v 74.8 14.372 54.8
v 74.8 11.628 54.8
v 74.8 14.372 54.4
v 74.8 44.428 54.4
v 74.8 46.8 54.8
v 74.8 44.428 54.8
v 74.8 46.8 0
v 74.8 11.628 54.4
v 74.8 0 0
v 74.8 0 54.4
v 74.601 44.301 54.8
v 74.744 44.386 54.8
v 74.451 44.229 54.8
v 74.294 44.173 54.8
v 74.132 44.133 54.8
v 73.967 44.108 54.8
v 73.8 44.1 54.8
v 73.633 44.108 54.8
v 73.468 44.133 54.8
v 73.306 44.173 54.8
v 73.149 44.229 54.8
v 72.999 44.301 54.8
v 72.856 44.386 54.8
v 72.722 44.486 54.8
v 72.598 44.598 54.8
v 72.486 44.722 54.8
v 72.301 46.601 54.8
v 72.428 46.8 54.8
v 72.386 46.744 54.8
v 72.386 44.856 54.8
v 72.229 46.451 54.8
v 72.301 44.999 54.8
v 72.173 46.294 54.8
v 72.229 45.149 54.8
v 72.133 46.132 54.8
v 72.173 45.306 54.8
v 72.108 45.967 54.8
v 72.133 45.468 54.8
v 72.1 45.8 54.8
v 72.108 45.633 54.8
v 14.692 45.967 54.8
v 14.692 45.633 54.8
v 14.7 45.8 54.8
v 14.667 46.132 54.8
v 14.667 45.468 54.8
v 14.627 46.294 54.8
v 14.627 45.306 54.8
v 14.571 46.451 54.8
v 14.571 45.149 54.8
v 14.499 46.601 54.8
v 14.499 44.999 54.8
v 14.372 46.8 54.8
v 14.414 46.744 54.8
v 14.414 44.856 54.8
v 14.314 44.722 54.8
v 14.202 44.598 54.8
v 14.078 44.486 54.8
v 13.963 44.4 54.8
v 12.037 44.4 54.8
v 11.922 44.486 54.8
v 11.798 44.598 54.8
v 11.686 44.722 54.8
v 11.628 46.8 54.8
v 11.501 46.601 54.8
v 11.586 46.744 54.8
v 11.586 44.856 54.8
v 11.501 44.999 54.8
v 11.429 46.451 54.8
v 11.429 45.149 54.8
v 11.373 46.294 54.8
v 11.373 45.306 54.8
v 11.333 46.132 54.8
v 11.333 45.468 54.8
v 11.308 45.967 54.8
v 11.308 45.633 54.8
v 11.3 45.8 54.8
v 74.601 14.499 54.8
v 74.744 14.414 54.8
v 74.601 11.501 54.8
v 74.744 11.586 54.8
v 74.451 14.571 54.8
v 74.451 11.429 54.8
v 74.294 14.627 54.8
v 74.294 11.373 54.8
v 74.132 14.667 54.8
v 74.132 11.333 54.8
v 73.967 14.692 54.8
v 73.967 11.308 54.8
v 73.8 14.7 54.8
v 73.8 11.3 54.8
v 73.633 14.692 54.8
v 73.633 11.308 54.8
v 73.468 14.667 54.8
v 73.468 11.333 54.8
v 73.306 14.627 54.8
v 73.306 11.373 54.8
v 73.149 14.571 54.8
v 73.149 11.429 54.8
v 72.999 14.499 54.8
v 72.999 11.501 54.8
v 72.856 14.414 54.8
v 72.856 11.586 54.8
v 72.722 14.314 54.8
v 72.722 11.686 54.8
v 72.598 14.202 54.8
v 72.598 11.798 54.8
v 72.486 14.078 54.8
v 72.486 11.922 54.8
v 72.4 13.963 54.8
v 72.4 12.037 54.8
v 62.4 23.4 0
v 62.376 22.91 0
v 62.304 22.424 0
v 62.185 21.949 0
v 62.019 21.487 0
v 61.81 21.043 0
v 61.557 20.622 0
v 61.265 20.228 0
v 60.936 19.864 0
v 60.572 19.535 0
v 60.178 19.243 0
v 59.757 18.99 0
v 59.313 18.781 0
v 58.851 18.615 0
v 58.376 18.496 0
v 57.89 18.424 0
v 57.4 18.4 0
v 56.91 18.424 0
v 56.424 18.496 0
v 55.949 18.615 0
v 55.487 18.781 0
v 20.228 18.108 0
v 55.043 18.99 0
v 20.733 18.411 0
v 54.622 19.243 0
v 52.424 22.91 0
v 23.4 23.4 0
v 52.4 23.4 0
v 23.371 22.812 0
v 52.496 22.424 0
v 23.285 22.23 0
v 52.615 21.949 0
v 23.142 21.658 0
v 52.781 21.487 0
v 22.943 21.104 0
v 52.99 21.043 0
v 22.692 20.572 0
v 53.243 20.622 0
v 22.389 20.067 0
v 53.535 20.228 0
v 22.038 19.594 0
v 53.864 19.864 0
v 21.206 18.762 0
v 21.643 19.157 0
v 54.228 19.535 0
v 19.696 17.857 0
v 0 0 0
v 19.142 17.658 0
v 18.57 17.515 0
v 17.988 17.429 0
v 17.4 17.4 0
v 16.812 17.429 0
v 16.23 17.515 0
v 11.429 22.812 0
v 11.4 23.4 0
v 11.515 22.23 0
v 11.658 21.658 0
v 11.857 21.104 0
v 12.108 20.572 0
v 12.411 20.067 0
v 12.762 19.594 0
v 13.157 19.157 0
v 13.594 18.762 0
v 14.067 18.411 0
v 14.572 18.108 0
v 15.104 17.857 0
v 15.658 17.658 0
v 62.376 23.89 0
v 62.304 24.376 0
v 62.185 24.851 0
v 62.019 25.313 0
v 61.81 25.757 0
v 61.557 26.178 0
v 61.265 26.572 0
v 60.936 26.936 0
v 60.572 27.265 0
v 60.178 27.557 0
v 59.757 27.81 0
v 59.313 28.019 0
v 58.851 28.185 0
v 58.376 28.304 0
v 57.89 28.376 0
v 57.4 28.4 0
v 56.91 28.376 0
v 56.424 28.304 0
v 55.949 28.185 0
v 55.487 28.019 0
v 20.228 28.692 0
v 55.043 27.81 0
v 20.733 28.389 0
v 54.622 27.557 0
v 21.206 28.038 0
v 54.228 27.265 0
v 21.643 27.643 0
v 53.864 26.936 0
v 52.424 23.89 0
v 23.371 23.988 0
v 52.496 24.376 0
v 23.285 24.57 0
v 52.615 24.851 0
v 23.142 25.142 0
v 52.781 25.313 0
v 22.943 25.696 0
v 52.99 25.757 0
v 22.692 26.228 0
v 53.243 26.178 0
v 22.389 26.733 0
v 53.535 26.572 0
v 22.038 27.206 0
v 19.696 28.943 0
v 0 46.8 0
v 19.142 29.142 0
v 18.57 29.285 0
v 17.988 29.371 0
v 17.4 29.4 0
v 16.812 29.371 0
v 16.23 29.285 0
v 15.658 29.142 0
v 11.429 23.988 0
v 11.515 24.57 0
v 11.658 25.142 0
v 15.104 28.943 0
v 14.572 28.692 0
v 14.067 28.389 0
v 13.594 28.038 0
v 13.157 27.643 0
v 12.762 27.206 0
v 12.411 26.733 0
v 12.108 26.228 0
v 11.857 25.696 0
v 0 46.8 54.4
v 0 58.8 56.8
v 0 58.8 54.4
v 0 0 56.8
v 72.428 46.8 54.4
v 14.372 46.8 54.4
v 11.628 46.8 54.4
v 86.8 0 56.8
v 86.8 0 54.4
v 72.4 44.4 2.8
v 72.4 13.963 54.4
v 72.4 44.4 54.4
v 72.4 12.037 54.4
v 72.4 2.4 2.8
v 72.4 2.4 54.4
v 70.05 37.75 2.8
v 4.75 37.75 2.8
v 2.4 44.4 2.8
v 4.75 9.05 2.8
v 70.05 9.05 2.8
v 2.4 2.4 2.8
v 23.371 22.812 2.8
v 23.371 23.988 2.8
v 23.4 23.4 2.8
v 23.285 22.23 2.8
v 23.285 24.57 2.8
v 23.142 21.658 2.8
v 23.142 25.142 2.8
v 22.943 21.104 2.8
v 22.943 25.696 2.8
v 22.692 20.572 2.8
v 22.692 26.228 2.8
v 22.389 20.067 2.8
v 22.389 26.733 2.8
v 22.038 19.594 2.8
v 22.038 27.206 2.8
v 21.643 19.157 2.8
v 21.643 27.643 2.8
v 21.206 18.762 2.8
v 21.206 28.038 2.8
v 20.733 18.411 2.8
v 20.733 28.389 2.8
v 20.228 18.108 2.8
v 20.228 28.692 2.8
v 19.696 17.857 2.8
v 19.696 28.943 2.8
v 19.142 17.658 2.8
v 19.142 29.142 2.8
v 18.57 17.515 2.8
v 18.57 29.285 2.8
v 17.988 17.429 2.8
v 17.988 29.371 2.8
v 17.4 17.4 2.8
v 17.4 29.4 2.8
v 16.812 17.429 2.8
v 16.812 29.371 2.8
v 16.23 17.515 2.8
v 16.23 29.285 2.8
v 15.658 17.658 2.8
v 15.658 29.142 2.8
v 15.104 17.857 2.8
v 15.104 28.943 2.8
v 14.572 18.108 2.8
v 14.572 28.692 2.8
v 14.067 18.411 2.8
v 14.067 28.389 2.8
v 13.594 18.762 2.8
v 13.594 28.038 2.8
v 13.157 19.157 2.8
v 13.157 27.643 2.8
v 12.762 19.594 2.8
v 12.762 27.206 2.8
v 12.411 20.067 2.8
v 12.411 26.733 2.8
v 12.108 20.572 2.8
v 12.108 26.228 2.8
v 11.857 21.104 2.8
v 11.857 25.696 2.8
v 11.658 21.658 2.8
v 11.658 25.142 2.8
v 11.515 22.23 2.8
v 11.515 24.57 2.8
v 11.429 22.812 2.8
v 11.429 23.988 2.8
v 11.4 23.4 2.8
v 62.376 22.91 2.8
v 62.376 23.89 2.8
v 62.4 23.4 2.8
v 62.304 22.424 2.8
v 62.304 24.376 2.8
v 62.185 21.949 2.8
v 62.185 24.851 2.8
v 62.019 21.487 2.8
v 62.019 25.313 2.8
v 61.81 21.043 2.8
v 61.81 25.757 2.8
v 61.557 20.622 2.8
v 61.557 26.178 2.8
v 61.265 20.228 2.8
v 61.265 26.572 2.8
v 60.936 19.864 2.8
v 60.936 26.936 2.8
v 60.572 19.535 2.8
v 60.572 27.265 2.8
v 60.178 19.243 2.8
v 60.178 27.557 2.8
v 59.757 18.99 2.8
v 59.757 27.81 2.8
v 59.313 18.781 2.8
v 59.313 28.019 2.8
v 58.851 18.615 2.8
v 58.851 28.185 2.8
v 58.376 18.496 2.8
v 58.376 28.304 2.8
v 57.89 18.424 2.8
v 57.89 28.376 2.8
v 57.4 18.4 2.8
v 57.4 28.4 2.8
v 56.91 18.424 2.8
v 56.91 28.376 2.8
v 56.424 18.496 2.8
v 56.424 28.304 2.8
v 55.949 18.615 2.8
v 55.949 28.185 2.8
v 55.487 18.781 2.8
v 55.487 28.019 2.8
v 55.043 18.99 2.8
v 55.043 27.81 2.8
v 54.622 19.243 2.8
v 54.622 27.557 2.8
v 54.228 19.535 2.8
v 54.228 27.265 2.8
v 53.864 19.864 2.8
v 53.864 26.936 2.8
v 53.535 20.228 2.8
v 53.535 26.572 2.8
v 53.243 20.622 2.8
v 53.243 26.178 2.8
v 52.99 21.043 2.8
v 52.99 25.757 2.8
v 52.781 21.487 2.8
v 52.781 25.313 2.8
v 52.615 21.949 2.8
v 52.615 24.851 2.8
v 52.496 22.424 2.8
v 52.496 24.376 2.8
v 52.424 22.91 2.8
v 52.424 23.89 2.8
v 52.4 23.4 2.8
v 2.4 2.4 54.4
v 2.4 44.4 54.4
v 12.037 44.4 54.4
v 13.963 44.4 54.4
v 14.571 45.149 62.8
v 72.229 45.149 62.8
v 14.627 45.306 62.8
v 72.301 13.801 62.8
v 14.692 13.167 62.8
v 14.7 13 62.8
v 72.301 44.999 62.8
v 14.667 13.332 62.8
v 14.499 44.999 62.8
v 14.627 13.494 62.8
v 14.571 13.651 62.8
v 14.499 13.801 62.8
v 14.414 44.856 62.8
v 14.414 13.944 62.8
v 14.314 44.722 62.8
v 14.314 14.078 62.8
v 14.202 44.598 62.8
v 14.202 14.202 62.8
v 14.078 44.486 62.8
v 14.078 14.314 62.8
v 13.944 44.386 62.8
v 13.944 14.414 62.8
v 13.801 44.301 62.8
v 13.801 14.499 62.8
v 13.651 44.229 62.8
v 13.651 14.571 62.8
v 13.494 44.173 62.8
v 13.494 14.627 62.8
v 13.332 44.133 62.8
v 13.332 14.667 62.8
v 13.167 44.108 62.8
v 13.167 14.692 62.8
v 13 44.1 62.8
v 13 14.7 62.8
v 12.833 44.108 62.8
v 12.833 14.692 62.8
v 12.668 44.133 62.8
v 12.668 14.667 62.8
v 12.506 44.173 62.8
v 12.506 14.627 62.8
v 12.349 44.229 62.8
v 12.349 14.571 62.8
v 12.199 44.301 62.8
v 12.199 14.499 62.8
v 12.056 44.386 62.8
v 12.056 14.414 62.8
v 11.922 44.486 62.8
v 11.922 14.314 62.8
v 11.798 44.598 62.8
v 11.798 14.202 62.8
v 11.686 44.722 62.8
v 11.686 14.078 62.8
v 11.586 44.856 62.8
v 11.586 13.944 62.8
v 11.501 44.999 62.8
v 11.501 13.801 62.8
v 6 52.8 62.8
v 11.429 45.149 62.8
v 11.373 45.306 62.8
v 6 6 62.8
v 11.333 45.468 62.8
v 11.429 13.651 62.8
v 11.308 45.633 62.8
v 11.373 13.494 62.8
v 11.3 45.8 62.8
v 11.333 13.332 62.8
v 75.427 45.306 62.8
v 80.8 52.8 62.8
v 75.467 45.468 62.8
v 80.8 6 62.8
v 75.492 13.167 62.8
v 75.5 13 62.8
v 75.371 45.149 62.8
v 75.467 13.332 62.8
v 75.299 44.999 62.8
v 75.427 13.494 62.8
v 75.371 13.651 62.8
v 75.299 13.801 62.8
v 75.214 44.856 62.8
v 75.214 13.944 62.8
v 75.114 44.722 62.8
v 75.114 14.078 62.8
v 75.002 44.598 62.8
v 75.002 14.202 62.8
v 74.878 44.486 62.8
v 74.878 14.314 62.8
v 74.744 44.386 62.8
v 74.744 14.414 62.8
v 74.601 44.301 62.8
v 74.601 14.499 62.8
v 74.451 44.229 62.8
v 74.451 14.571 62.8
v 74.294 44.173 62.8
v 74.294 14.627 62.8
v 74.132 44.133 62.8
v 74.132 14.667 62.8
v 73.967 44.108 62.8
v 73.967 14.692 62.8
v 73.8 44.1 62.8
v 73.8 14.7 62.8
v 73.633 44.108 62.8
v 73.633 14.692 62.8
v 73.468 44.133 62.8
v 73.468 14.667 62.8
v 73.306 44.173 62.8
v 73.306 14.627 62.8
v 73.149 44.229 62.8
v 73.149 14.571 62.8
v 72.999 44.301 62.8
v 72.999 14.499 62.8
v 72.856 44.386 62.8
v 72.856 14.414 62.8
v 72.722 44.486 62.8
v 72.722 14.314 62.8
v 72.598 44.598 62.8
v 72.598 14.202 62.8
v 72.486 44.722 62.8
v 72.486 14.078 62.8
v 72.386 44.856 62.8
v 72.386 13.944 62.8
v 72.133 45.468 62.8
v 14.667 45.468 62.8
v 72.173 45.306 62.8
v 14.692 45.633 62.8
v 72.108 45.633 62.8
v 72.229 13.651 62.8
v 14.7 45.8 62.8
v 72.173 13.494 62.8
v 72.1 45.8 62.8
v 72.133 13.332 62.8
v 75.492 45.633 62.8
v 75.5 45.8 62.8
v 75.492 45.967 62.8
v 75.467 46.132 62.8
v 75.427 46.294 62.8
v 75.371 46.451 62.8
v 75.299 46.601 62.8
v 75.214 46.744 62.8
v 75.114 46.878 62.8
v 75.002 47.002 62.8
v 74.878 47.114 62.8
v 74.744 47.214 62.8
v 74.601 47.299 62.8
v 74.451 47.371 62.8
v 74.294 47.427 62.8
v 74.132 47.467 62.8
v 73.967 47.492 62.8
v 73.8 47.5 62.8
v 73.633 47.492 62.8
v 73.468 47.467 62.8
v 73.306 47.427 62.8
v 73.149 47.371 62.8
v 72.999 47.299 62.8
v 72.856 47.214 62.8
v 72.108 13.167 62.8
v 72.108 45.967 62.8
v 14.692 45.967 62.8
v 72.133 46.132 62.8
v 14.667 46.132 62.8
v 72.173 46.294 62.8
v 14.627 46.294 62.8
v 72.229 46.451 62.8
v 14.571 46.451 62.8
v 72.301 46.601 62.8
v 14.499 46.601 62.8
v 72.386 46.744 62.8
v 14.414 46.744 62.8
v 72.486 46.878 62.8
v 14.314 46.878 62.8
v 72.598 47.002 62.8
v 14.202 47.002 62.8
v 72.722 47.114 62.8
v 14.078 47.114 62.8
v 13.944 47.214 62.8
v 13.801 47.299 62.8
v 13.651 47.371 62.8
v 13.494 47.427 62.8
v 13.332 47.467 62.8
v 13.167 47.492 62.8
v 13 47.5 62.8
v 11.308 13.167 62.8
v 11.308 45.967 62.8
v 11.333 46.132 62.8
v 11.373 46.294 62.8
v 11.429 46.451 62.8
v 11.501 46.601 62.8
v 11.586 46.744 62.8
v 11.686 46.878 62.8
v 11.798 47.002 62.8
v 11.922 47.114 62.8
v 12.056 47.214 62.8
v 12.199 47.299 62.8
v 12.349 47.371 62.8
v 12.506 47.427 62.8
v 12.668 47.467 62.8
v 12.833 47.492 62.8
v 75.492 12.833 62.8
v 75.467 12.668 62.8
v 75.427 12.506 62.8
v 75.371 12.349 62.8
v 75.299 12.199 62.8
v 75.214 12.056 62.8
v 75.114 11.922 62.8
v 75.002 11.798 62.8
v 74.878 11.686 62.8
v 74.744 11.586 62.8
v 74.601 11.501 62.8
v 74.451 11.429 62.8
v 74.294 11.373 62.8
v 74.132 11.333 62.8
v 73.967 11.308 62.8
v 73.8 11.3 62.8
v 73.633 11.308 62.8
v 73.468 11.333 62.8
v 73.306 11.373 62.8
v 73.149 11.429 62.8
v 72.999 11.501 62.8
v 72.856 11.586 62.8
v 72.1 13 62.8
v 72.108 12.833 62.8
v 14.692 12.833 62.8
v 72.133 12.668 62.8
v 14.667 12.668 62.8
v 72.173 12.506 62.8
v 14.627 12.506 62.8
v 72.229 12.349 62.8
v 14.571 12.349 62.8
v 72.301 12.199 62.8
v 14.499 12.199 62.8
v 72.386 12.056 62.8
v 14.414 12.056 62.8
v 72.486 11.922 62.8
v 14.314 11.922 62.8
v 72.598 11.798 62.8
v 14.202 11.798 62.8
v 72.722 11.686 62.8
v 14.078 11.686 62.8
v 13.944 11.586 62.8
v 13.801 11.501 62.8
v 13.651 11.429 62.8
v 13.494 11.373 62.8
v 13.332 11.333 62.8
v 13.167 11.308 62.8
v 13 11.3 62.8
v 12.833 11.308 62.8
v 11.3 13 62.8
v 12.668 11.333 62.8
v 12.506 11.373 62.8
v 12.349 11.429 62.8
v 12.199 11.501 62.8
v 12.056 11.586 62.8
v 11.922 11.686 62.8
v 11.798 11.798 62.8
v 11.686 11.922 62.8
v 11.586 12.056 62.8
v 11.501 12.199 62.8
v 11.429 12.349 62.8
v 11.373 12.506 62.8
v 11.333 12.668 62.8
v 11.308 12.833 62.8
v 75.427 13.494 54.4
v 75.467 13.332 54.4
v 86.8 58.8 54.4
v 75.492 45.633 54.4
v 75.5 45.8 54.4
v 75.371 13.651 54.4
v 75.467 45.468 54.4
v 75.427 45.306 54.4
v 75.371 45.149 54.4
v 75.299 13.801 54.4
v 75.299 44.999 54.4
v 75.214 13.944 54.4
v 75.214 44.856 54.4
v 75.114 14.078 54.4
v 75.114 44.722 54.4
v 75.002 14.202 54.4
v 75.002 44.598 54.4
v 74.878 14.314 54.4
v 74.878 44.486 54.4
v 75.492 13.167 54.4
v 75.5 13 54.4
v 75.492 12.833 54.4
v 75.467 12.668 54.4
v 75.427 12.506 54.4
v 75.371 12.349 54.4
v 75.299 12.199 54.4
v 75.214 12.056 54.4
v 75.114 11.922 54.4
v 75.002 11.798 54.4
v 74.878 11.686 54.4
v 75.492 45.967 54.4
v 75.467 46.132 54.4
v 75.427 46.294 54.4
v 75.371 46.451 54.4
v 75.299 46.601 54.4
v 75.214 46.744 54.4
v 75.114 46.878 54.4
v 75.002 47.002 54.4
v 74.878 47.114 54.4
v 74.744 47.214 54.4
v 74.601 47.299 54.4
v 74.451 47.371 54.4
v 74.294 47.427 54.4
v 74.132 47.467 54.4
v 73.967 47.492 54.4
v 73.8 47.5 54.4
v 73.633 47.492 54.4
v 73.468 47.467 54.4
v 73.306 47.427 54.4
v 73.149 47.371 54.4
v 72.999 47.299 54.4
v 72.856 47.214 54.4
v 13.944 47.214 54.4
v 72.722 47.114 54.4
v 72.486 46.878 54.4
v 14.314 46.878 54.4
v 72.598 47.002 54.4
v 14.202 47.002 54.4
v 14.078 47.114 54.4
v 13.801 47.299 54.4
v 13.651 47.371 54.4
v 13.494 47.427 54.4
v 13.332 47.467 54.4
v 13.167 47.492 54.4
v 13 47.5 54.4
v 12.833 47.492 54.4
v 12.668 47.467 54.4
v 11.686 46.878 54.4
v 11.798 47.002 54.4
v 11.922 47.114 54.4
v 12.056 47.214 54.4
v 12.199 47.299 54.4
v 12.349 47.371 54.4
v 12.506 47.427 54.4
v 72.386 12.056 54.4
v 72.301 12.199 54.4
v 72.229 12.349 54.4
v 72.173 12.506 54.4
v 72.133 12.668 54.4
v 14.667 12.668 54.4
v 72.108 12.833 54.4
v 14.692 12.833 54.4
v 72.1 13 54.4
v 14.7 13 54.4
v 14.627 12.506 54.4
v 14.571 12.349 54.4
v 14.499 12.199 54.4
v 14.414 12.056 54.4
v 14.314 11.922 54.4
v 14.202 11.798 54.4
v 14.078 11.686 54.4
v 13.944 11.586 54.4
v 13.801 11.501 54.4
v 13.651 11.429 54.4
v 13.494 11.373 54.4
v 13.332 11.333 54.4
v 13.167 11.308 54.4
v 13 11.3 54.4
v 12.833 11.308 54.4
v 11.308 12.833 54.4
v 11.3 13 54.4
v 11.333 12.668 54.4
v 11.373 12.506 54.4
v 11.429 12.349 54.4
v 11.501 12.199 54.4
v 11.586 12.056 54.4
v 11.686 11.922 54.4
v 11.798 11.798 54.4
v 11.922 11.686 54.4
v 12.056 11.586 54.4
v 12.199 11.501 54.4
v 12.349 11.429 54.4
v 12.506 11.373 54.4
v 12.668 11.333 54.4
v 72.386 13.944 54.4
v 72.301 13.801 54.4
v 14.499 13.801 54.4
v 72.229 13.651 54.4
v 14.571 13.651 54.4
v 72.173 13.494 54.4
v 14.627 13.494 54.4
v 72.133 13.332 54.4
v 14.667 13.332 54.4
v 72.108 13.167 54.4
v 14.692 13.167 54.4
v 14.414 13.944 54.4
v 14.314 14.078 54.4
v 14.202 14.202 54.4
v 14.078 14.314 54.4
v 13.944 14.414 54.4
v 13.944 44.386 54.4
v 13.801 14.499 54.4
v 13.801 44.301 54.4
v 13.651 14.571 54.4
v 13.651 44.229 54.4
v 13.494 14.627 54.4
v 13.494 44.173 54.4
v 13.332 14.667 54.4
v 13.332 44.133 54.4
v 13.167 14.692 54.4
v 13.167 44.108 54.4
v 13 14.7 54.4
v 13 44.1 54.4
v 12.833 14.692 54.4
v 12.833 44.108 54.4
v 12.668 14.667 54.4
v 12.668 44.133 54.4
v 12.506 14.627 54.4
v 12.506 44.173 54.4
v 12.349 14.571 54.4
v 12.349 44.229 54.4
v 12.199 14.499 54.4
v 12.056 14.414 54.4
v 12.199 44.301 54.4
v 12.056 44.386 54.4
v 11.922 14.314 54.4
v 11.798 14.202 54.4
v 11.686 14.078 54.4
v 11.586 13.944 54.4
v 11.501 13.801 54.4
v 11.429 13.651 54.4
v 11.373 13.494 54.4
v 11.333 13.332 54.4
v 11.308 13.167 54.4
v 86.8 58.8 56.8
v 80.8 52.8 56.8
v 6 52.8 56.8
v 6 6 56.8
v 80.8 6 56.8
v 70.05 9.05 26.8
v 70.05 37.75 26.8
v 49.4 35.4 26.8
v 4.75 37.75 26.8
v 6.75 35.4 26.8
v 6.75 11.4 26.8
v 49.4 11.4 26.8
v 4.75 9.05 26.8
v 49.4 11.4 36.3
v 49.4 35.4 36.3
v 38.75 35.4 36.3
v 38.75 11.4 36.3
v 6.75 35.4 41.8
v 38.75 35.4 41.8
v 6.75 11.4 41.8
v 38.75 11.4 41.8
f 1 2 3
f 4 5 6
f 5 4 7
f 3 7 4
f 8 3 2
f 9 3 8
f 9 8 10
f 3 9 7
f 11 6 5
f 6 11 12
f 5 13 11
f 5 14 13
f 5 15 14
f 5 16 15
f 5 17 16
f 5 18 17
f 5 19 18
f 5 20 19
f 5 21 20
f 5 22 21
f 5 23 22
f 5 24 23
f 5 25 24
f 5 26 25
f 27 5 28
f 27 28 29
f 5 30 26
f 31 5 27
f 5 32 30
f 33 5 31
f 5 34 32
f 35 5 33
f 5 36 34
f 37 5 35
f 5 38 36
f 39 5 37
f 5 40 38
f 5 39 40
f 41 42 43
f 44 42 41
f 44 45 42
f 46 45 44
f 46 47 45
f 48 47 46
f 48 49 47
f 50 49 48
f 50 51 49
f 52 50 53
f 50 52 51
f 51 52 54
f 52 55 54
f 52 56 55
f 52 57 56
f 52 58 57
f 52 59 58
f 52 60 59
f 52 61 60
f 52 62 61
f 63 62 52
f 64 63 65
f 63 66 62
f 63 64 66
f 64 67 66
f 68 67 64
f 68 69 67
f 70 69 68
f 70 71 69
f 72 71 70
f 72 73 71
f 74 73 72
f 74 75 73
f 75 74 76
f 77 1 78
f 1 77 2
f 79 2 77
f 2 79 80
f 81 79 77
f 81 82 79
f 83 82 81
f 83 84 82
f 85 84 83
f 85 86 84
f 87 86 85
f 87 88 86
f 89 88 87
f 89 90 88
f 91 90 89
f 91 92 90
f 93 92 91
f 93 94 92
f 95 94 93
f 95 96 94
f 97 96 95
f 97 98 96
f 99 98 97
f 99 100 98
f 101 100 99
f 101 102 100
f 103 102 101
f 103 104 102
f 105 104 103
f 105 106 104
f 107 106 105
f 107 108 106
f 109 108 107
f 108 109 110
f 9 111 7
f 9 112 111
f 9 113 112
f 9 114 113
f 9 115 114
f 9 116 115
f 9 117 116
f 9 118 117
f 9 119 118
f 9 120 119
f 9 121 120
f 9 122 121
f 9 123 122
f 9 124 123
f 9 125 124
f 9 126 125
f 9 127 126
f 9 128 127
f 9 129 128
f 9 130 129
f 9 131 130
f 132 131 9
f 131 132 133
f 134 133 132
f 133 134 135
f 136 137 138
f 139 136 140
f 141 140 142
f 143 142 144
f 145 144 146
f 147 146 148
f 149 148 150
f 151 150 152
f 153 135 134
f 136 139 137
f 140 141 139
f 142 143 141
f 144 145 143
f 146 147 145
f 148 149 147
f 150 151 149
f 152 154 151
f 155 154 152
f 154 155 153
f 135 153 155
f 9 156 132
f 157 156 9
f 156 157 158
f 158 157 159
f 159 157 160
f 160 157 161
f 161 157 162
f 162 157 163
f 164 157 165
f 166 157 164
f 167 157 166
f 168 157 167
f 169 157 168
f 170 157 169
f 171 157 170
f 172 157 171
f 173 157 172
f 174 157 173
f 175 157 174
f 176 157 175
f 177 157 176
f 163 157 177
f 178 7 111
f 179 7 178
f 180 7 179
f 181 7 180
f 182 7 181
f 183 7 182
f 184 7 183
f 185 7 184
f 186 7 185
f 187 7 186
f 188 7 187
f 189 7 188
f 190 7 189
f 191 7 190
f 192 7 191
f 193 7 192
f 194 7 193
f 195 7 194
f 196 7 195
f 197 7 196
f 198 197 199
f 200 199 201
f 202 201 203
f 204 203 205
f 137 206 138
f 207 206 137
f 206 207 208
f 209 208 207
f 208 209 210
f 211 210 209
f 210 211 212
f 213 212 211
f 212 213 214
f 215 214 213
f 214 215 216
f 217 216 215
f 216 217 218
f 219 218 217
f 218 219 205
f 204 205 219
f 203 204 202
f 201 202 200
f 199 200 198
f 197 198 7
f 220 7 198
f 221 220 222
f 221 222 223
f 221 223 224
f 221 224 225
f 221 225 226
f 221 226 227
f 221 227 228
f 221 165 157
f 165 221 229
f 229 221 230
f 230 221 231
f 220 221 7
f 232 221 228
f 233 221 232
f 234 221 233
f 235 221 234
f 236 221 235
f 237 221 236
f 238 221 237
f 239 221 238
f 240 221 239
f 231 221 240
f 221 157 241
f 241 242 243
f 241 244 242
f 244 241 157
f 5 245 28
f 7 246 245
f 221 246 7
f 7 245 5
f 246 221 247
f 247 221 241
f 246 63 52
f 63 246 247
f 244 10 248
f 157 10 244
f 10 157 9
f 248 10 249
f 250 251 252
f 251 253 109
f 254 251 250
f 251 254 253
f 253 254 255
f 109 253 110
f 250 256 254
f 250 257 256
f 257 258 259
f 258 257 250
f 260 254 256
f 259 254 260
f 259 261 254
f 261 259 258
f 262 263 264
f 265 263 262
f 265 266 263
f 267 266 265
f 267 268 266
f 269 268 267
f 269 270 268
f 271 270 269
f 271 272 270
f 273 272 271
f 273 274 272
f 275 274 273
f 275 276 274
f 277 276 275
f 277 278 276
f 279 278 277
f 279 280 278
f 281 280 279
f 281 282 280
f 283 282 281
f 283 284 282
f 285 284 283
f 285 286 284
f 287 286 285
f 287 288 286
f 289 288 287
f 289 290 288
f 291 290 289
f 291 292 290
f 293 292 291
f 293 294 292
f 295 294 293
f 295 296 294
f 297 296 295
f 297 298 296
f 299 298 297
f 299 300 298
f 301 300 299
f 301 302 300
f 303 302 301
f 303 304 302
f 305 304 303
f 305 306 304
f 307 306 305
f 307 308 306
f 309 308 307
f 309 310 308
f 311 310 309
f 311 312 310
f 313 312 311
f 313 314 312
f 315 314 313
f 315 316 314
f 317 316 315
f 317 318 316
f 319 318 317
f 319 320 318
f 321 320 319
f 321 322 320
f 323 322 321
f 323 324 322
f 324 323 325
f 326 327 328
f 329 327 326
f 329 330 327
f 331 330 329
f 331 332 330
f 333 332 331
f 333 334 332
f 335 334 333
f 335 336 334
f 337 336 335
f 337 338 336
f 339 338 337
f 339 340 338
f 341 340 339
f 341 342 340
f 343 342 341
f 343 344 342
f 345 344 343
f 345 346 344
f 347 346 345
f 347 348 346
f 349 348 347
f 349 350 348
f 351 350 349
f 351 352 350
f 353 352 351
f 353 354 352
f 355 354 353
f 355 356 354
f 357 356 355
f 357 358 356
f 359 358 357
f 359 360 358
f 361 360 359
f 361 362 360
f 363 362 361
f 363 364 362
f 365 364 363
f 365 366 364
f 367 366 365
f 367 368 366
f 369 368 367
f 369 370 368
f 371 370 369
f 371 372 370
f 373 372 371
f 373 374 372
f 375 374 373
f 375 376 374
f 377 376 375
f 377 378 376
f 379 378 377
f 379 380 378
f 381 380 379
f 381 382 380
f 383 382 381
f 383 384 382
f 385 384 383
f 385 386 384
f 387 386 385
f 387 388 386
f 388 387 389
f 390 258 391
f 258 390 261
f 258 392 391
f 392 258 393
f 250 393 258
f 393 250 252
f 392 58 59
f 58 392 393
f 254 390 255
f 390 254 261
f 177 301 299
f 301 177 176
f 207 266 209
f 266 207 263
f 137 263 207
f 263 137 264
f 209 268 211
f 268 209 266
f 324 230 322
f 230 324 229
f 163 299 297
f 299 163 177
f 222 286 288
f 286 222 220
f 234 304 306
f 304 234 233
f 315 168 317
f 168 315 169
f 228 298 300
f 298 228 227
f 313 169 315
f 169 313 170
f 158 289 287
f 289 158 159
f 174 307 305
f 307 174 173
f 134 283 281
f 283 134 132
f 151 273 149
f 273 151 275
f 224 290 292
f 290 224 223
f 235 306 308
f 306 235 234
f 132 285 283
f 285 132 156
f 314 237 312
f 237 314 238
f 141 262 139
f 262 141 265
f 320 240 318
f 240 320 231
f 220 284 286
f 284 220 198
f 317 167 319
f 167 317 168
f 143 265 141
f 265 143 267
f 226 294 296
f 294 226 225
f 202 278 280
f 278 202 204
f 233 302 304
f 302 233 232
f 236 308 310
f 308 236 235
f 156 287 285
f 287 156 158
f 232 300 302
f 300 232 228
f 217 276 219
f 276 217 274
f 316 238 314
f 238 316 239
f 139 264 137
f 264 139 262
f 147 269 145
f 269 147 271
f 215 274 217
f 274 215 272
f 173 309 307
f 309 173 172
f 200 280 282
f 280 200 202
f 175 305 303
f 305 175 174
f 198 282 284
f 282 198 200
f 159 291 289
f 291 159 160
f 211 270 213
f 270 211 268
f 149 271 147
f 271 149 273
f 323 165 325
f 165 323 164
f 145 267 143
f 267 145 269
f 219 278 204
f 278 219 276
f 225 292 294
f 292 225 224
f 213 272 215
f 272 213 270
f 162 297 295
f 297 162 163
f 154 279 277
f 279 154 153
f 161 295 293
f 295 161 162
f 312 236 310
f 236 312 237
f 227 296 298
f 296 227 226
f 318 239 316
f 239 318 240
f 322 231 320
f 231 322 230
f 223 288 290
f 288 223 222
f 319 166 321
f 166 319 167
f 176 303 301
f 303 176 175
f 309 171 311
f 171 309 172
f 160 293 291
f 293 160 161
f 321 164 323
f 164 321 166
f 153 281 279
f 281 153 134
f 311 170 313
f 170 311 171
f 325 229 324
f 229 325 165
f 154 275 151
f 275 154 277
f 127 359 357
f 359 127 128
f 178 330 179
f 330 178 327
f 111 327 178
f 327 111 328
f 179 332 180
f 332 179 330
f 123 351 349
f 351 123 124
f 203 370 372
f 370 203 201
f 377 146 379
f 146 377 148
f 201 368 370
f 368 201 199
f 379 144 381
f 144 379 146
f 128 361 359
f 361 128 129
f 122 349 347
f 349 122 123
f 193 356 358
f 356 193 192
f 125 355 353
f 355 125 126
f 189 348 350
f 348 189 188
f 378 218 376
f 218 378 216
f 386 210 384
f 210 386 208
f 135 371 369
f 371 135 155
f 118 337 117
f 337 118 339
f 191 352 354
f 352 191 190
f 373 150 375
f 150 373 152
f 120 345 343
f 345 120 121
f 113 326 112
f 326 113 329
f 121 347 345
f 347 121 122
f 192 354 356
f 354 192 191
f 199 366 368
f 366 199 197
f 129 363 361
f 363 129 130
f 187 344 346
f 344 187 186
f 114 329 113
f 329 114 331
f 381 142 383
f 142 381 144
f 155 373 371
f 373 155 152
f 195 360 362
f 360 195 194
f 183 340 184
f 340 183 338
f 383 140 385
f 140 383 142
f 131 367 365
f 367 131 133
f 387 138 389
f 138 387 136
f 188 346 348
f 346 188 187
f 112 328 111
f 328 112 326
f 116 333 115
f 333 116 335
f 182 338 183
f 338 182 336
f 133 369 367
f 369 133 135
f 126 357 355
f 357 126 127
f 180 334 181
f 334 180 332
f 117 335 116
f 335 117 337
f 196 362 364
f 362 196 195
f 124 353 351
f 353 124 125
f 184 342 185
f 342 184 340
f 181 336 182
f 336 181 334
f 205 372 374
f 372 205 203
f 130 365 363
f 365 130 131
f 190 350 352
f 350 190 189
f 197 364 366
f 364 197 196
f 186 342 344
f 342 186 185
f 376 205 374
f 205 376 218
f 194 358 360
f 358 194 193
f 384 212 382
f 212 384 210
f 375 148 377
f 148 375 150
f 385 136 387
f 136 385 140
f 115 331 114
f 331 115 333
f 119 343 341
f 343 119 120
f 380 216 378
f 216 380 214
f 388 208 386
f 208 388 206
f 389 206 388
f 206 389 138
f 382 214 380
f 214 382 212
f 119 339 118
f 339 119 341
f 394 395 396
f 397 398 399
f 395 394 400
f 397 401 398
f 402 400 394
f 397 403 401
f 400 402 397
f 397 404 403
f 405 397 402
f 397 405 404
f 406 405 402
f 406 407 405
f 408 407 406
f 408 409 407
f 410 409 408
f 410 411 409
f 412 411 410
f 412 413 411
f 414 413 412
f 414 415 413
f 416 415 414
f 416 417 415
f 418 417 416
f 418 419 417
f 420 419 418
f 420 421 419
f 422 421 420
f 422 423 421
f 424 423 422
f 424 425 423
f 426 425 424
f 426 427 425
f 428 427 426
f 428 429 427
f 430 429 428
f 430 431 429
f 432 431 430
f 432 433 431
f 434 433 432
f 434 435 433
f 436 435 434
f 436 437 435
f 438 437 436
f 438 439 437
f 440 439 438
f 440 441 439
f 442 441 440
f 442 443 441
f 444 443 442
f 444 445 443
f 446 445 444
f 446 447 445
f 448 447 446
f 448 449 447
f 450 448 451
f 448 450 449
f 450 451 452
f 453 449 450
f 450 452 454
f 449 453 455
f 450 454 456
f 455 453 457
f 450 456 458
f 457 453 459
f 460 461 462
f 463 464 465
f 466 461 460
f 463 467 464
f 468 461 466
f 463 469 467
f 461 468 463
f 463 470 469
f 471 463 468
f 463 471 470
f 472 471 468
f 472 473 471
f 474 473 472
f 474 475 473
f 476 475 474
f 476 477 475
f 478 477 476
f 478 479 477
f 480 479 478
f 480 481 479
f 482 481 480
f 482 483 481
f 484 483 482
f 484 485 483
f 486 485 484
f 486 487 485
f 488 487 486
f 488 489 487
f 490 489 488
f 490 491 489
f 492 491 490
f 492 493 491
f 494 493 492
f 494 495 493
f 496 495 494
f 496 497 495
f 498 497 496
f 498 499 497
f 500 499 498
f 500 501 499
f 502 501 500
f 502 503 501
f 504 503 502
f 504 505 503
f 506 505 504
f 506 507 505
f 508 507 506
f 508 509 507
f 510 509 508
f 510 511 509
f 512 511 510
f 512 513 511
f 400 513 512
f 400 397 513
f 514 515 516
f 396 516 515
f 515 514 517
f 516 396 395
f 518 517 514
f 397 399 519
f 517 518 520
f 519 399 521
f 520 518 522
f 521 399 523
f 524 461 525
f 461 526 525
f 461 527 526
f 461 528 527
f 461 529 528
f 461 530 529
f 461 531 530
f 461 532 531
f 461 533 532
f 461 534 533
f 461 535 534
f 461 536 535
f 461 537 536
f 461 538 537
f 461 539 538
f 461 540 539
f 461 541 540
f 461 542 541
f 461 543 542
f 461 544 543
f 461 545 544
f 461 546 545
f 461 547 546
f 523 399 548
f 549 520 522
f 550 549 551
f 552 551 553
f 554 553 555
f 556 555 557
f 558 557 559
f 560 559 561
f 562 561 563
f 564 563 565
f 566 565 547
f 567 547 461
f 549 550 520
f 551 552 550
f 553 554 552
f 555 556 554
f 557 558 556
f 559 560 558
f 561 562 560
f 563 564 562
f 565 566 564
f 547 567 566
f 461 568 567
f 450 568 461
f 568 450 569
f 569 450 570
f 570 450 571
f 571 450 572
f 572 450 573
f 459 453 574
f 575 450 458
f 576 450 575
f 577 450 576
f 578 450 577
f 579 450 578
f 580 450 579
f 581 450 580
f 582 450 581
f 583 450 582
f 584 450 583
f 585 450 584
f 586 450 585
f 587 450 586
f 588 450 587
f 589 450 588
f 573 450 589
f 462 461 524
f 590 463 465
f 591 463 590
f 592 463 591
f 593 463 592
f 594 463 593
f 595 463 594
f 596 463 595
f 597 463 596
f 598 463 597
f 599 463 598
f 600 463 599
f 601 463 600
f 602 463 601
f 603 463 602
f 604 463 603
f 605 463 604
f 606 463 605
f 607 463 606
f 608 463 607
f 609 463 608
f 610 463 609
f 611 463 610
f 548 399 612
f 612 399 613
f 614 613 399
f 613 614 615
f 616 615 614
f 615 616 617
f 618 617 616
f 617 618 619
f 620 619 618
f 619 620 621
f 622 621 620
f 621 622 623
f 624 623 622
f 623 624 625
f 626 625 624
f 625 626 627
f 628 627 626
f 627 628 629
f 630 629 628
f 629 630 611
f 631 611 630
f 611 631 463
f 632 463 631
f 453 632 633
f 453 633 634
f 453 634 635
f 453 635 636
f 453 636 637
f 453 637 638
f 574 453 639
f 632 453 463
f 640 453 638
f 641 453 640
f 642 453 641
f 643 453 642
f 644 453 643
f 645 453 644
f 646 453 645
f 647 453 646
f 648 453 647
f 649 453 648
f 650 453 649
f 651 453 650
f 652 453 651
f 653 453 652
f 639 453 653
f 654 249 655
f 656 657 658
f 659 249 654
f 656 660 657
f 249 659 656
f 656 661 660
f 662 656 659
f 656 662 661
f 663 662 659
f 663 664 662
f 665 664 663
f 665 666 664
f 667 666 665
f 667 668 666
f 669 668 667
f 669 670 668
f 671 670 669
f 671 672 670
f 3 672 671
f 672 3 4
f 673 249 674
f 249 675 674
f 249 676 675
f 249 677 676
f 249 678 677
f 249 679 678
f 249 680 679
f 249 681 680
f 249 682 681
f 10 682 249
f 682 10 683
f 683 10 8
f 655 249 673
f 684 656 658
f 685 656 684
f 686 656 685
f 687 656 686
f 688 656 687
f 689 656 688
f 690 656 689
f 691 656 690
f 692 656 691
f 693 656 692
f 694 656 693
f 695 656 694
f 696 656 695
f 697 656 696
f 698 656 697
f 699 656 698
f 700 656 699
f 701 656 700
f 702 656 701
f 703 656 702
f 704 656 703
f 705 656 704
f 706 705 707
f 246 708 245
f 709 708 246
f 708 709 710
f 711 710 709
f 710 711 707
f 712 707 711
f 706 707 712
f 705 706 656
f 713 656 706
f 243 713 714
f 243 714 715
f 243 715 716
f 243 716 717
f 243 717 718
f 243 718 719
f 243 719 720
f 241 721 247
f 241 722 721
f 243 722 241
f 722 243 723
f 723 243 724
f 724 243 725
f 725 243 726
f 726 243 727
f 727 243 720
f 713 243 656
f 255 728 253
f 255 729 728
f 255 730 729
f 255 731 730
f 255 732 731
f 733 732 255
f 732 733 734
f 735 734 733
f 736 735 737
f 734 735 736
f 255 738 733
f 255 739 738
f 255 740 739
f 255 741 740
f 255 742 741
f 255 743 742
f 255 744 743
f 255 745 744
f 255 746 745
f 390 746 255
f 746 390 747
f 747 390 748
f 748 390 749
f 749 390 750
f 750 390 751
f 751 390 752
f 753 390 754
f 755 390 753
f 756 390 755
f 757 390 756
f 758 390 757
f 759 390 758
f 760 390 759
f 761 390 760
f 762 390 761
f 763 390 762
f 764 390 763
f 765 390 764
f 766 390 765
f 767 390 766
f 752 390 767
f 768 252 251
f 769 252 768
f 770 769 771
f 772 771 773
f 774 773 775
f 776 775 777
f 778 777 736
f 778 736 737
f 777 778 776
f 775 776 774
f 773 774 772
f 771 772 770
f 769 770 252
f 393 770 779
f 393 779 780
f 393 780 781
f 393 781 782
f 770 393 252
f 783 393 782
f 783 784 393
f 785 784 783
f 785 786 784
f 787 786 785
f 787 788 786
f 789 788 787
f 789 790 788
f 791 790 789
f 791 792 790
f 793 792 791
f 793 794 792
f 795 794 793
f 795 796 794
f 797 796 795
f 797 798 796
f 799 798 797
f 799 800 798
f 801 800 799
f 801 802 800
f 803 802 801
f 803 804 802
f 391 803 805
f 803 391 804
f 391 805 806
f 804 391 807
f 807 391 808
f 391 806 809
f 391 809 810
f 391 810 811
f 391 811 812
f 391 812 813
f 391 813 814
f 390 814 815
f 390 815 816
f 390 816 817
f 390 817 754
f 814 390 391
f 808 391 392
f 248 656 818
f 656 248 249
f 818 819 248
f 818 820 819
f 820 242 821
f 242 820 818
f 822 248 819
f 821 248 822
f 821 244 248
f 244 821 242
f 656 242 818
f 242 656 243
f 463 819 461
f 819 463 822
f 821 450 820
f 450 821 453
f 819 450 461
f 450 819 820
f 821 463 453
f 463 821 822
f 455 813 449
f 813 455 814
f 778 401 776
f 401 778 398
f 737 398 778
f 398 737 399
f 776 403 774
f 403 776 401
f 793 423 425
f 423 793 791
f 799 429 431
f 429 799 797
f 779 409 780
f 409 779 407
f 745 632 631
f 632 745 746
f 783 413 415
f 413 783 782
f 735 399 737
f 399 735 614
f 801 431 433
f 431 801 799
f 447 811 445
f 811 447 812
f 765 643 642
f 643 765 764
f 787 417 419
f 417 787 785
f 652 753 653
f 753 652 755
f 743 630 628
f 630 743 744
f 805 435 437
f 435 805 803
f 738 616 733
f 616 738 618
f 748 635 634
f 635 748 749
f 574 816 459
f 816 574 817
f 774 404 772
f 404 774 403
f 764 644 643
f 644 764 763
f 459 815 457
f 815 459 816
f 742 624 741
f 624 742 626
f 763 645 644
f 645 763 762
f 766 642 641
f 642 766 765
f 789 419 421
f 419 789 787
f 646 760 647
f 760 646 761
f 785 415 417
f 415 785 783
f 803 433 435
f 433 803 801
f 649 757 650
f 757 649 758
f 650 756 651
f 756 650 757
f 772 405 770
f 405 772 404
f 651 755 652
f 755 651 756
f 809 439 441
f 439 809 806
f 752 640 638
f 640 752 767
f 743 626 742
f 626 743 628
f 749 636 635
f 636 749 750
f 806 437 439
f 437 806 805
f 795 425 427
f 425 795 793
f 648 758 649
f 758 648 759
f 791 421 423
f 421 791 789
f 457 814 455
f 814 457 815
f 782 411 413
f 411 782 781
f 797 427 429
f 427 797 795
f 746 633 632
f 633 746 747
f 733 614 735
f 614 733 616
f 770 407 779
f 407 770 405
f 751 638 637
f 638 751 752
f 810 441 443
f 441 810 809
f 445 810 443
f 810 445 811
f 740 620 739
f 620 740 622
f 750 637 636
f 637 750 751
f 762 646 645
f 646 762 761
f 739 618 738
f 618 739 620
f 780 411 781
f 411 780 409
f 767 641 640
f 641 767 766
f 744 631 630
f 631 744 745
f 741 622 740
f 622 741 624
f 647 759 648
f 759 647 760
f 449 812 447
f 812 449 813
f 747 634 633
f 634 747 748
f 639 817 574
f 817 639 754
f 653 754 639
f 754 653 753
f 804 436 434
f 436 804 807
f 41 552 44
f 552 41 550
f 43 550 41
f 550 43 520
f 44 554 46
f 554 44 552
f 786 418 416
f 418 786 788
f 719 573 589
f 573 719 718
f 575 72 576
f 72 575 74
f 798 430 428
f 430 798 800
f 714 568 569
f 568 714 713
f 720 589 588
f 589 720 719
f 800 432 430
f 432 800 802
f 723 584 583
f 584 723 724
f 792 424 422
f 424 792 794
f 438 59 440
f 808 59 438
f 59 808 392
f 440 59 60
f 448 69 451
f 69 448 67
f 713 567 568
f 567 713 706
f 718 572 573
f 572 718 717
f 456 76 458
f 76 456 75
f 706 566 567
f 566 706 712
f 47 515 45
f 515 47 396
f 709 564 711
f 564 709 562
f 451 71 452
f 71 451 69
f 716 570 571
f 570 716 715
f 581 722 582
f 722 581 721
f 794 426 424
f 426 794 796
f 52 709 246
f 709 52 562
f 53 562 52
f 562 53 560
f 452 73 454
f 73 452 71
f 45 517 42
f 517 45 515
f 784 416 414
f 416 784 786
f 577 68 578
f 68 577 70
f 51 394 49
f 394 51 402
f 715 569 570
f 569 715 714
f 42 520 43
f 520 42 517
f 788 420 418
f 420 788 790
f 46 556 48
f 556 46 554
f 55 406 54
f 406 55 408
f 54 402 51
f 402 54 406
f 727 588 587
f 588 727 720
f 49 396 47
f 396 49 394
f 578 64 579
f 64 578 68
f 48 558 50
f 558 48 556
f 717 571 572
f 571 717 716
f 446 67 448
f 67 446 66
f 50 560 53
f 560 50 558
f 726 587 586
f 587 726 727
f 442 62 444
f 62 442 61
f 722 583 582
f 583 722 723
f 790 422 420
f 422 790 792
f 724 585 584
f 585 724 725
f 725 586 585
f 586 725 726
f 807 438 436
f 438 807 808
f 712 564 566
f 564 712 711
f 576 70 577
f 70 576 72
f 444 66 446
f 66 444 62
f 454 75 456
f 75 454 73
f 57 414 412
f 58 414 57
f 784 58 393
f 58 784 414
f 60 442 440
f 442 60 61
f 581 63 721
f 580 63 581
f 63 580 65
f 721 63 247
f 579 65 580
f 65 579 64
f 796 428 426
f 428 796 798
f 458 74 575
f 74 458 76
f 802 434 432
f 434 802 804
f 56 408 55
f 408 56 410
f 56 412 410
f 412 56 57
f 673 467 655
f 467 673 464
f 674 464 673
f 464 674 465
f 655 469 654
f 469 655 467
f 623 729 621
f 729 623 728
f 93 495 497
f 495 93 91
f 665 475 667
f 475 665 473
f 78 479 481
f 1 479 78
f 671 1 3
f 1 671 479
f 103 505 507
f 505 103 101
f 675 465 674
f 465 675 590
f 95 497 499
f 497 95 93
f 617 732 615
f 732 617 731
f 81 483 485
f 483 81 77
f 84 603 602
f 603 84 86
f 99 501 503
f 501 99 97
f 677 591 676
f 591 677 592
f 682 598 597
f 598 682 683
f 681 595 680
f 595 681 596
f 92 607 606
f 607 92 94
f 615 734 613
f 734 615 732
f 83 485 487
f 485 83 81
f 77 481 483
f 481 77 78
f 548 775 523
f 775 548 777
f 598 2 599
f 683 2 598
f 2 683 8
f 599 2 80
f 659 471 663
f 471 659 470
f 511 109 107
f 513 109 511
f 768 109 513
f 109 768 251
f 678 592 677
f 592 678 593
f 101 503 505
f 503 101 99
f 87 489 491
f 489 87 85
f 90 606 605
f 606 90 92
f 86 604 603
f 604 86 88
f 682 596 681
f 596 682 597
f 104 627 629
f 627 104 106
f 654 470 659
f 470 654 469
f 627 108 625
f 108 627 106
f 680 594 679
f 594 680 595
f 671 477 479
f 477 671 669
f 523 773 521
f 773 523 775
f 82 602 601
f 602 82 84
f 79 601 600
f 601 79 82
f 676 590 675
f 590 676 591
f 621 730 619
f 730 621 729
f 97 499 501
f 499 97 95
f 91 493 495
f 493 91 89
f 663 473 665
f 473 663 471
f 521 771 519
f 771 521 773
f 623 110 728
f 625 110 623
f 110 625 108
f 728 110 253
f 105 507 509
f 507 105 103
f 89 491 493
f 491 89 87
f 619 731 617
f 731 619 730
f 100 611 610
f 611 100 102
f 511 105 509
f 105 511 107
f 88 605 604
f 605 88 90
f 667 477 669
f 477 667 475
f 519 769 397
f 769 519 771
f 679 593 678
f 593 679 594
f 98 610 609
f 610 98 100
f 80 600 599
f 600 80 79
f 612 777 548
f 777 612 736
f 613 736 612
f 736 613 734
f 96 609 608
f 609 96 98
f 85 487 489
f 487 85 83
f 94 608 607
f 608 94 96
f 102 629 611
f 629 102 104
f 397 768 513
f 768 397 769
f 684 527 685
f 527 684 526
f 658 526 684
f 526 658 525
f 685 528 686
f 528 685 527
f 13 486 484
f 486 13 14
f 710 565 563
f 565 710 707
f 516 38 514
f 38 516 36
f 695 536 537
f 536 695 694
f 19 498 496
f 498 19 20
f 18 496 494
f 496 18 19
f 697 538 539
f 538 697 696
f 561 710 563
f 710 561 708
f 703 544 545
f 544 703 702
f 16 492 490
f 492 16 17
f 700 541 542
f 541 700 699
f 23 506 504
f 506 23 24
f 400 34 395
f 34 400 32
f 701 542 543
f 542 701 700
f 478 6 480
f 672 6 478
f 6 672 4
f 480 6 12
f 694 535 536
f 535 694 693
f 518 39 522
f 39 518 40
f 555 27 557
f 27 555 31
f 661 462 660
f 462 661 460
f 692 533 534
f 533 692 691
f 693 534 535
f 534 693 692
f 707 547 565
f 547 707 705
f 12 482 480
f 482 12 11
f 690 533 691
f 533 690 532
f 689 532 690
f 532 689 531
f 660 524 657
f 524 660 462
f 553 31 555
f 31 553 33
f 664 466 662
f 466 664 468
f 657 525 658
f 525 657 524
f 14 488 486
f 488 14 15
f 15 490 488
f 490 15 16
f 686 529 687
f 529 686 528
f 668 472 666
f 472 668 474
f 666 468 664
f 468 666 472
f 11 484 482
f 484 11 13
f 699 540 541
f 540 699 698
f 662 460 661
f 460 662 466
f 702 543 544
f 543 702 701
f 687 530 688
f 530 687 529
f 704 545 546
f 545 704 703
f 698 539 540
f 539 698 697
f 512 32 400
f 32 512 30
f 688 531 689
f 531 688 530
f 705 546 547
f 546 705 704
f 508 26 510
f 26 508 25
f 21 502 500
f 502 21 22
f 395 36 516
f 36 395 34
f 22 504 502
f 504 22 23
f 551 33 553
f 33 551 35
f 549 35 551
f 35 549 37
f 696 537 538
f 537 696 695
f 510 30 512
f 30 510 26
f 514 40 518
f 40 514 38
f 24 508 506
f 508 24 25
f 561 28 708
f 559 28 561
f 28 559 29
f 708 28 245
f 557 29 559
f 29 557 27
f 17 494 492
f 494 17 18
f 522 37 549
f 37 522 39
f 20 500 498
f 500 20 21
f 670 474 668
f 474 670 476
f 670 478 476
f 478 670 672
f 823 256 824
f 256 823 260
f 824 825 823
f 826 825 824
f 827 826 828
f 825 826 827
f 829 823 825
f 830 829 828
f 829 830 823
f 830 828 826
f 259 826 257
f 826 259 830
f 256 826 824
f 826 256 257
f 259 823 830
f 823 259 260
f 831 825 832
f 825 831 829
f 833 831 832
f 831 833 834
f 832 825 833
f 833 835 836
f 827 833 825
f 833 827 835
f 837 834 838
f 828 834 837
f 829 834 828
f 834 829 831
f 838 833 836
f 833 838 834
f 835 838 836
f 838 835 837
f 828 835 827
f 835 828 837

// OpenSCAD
// file: sprout_enclosure.scad
// ============================================================================
// Sprout — Indoor prototype housing (LMAO smart-irrigation node)
// ----------------------------------------------------------------------------
// OpenSCAD parametric box. Edit the values in the PARAMETERS block to match
// YOUR calliper measurements, re-render, slice, print, measure the delta,
// update the param. That is the whole iteration loop for a prototype.
//
// Contains (published M5Stack dims; measure & adjust in PARAMS):
//   - ATOM Lite             24.0 x 24.0 x  9.5 mm
//   - ATOM DTU LoRaWAN base 65.3 x 28.7 x 24.0 mm   (A152-EU868, DIN-rail back)
//     (stacked via 9-pin socket => combined footprint ~65 x 29, ~34 tall)
//   - ENV III on base Port A (SHT30 + QMP6988)      (verify actual size)
//   - Watering Unit U101    192.8 x 26.5 x 33.0 mm  (driver end INSIDE, probe/hose
//     exit through the floor gland -> into soil)
//   - LoRa antenna          RP-SMA duck, 195 mm, exits the side/top
//
// Design choices for an INDOOR bench prototype (see README):
//   - generous clearance + cable room; trim down after you fit it
//   - one-handed service: lid with 4x M3, not glue
//   - USB access slot on the side for mpremote/flash without opening the lid
//   - probe/hose gland + antenna exit on the BOTTOM so water never runs into
//     the electronics (habit for the future outdoor field unit)
// ============================================================================

// ---------------------------------------------------------------------------
// PARAMETERS — tune these
// ---------------------------------------------------------------------------
/* [Fit — measure the real stack and adjust] */
stack_len    = 70;    // X inner length to clear the stack (base is 65.3 -> allow cable tuck)
stack_wid    = 42;    // Y inner width                           (base is 28.7 -> ENV III + cables)
stack_h      = 52;    // Z inner height  (base 24 + Atom 9.5 + headroom + cable bend)

/* [Enclosure structure] */
wall         = 2.4;   // outer wall thickness (2-3 perimeters of 0.4 nozzle)
floor        = 2.8;   // floor thickness (bit thicker so glands thread well)
clearance    = 0.5;   // general fit clearance inside the cavity
lid_thick    = 2.4;
lid_overlap  = 6.0;   // lid skirt that drops over the box walls

/* [Fasteners — 4x M3] */
m3_d         = 3.4;   // tap hole for M3 brass insert (drill driver: ~3.2-3.4)
boss_h       = 6.0;   // screw boss height in the lid
boss_d       = 7.0;   // screw boss outer diameter
screw_inset  = 7.0;   // screw position inset from each box corner

/* [Penetrations] */
usb_w        = 14.0;  // USB-C access slot width  (Atom USB Type-C is at one end)
usb_h        = 8.0;   // slot height (so a cable can plug while lid is on)
usb_offset_z = 8.0;   // slot center height above the floor
usb_on_len   = true;  // slot on the LENGTH (X) side; false = on the WIDTH (Y) side

gland_d      = 12.0;  // probe/hose cable gland bore (bottom) — size to your hose/gland
gland_xoff   = 20.0;  // gland position along X from center
antenna_d    = 10.0;  // antenna bullet/pass-through bore (bottom corner)

/* [Print] */
fn           = 64;    // circle resolution (leave high for clean holes)
debug_split  = false; // true = render box & lid side-by-side for BOM/screenshot

// ---------------------------------------------------------------------------
// Derived
// ---------------------------------------------------------------------------
outer_len = stack_len + 2 * wall;
outer_wid = stack_wid + 2 * wall;
outer_h   = stack_h  + floor;

// ---------------------------------------------------------------------------
// Box body
// ---------------------------------------------------------------------------
module box_body() {
    difference() {
        // solid outer shell (open top)
        difference() {
            cube([outer_len, outer_wid, outer_h], center = false);
            // inner cavity pocket
            translate([wall, wall, floor])
                cube([stack_len, stack_wid, outer_h], center = false);
        }
        // USB service slot (on a side)
        translate([usb_on_len ? (outer_len - wall - usb_w / 2)
                              : (outer_len / 2),
                   usb_on_len ? (outer_wid / 2)
                              : (outer_wid - wall - usb_h / 2),
                   usb_offset_z])
            cube([usb_on_len ? usb_w : usb_h,
                  usb_on_len ? usb_h : usb_w,
                  2 * wall + 1], center = true);
        // bottom gland for the probe/hose + the antenna pass-through
        translate([outer_len / 2 - gland_xoff, outer_wid / 2, -0.01])
            cylinder(d = gland_d,  h = floor + 1, $fn = fn);
        translate([outer_len / 2 + gland_xoff, outer_wid / 2, -0.01])
            cylinder(d = antenna_d, h = floor + 1, $fn = fn);
        // M2 mount point for the Atom (back has an M2 hole) — optional floor boss
        // translate([outer_len/2, outer_wid/2, -0.01])
        //     cylinder(d = 2.5, h = floor + 1, $fn = fn);
    }
}

// ---------------------------------------------------------------------------
// Lid (drops over the box top; 4x M3 screw bosses)
// ---------------------------------------------------------------------------
module lid() {
    difference() {
        union() {
            // main lid plate + drop-down skirt
            cube([outer_len + 2 * lid_overlap, outer_wid + 2 * lid_overlap,
                  lid_thick]);
            translate([lid_overlap, lid_overlap, 0])
                cube([outer_len, outer_wid, lid_thick + lid_overlap]);
            // screw bosses
            for (sx = [screw_inset, outer_len - screw_inset])
                for (sy = [screw_inset, outer_wid - screw_inset])
                    translate([sx + lid_overlap, sy + lid_overlap, 0])
                        cylinder(d = boss_d, h = lid_thick + boss_h, $fn = fn);
        }
        // M3 holes through the bosses
        for (sx = [screw_inset, outer_len - screw_inset])
            for (sy = [screw_inset, outer_wid - screw_inset])
                translate([sx + lid_overlap, sy + lid_overlap, -0.01])
                    cylinder(d = m3_d, h = lid_thick + boss_h + 1, $fn = fn);
    }
}

// ---------------------------------------------------------------------------
// Render
// ---------------------------------------------------------------------------
if (debug_split) {
    translate([0, 0, 0]) box_body();
    translate([outer_len + 2 * lid_overlap + 10, 0, 0]) lid();
} else {
    // assembled view (lid on top, see-through by lowering it slightly)
    color("SteelBlue") box_body();
    translate([0, 0, outer_h - 0.4]) color("Orange") lid();
}
// main file
// ============================================================================
// Sprout — indoor prototype HOUSING ASSEMBLY (box + lid + positioned internals)
// ----------------------------------------------------------------------------
// include <sprout_enclosure.scad>   (defines box_body(), lid(), PARAMS)
//
// This file models the INTERNALS from their PUBLISHED DIMENSIONS (exact, known):
//   - ATOM DTU LoRaWAN base (A152-EU868)  65.3 x 28.7 x 24.0   <- NOT in M5_Hardware,
//     so we model it precisely here. This is the structural spine of the stack.
//   - ATOM Lite 24.0 x 24.0 x 9.5   (sits on top of the DTU base, 9-pin socket)
//   - ENV III   ~32 x 24 x 15        (air T/humidity + pressure, on base Port A)
//
// Design note on the vendor STL files (vendor_ms5/): M5Stack's structure STLs do
// NOT match the published product dimensions (measured ~4x too large vs spec; see
// scale_check.scad). They are schematic renderings, not dimensionally-usable
// meshes. So the ACCURATE internals here are simple placeholder boxes keyed to
// real dims; the vendor STLs are available only behind use_vendor_stl=true if you
// decide they're representative enough for you (they are NOT fit-critical).
//
// The Watering Unit U101 physically lives OUTSIDE/adjacent for the indoor rig:
// only its Grove cable + pump leads enter the box through the bottom gland. The
// pump (5 W / ~1 A @ 5 V) must NOT share the node's rail — see README.
// ============================================================================

include <sprout_enclosure.scad>

/* [Internals — published dims; measure & adjust to your calipers] */
dtu_len = 65.3;   dtu_wid = 28.7;   dtu_h   = 24.0;   // Atom DTU LoRaWAN base
atom_x  = 24.0;   atom_y  = 24.0;   atom_z  = 9.5;    // Atom Lite (on top of base)
env_len = 32.0;   env_wid = 24.0;   env_z   = 15.0;   // ENV III (near base corner)
use_vendor_stl = false;   // true = import vendor_ms5/*.stl instead of the boxes

// --- helpers: place parts centered within the inner cavity, resting on floor --
// inner cavity lives in [wall, wall, floor] .. +[stack_len, stack_wid, ...]
function cx(c=0) = wall + (stack_len)/2 + c;   // X center of cavity
function cy(c=0) = wall + (stack_wid)/2 + c;   // Y center of cavity

module dtu_base(){          // ATOM DTU LoRaWAN base — the modeled spine
    tx = cx() - dtu_len/2;
    ty = cy() - dtu_wid/2;
    translate([tx, ty, floor]) color("DarkSlateGray") cube([dtu_len, dtu_wid, dtu_h]);
}

module atom_lite(){         // Atom Lite on top of the DTU base
    tx = cx() - atom_x/2;
    ty = cy() - atom_y/2;
    translate([tx, ty, floor + dtu_h]) color("DodgerBlue") cube([atom_x, atom_y, atom_z]);
}

module env_iii(){           // ENV III on the DTU base, near one end (Port A side)
    tx = wall + (stack_len - dtu_len)/2 + 2;          // offset to the -X end
    ty = cy() - env_wid/2;
    translate([tx, ty, floor + dtu_h]) color("MediumSeaGreen") cube([env_len, env_wid, env_z]);
}

// Vendor STL proxies (unreliable scale — off by default)
module atom_stl(){
    translate([cx()-12, cy()-12, floor+dtu_h])
        color("DodgerBlue",0.6) import("vendor_ms5/normalized/Atom-Lite.stl");
}
module env_stl(){
    translate([wall + (stack_len-dtu_len)/2 + 2, cy()-45, floor+dtu_h])
        color("MediumSeaGreen",0.6) import("vendor_ms5/normalized/Unit_ENV-III.stl");
}

module internals(){
    if (use_vendor_stl) { atom_stl(); env_stl(); }
    else {                              // accurate dims-based placeholders
        dtu_base(); atom_lite(); env_iii();
    }
}

// ===========================================================================
// Render
// ===========================================================================
if (debug_split) {
    translate([0,0,0]) box_body();
    translate([outer_len + 2*lid_overlap + 10, 0, 0]) internals();   // exploded next to box
    translate([2*(outer_len+2*lid_overlap)+10, 0, 0]) lid();
} else {
    color("SteelBlue", 0.55) box_body();
    internals();
    // lid shown lifted so you can see inside
    translate([0,0, outer_h - 0.4]) color("Orange", 0.5) lid();
}
